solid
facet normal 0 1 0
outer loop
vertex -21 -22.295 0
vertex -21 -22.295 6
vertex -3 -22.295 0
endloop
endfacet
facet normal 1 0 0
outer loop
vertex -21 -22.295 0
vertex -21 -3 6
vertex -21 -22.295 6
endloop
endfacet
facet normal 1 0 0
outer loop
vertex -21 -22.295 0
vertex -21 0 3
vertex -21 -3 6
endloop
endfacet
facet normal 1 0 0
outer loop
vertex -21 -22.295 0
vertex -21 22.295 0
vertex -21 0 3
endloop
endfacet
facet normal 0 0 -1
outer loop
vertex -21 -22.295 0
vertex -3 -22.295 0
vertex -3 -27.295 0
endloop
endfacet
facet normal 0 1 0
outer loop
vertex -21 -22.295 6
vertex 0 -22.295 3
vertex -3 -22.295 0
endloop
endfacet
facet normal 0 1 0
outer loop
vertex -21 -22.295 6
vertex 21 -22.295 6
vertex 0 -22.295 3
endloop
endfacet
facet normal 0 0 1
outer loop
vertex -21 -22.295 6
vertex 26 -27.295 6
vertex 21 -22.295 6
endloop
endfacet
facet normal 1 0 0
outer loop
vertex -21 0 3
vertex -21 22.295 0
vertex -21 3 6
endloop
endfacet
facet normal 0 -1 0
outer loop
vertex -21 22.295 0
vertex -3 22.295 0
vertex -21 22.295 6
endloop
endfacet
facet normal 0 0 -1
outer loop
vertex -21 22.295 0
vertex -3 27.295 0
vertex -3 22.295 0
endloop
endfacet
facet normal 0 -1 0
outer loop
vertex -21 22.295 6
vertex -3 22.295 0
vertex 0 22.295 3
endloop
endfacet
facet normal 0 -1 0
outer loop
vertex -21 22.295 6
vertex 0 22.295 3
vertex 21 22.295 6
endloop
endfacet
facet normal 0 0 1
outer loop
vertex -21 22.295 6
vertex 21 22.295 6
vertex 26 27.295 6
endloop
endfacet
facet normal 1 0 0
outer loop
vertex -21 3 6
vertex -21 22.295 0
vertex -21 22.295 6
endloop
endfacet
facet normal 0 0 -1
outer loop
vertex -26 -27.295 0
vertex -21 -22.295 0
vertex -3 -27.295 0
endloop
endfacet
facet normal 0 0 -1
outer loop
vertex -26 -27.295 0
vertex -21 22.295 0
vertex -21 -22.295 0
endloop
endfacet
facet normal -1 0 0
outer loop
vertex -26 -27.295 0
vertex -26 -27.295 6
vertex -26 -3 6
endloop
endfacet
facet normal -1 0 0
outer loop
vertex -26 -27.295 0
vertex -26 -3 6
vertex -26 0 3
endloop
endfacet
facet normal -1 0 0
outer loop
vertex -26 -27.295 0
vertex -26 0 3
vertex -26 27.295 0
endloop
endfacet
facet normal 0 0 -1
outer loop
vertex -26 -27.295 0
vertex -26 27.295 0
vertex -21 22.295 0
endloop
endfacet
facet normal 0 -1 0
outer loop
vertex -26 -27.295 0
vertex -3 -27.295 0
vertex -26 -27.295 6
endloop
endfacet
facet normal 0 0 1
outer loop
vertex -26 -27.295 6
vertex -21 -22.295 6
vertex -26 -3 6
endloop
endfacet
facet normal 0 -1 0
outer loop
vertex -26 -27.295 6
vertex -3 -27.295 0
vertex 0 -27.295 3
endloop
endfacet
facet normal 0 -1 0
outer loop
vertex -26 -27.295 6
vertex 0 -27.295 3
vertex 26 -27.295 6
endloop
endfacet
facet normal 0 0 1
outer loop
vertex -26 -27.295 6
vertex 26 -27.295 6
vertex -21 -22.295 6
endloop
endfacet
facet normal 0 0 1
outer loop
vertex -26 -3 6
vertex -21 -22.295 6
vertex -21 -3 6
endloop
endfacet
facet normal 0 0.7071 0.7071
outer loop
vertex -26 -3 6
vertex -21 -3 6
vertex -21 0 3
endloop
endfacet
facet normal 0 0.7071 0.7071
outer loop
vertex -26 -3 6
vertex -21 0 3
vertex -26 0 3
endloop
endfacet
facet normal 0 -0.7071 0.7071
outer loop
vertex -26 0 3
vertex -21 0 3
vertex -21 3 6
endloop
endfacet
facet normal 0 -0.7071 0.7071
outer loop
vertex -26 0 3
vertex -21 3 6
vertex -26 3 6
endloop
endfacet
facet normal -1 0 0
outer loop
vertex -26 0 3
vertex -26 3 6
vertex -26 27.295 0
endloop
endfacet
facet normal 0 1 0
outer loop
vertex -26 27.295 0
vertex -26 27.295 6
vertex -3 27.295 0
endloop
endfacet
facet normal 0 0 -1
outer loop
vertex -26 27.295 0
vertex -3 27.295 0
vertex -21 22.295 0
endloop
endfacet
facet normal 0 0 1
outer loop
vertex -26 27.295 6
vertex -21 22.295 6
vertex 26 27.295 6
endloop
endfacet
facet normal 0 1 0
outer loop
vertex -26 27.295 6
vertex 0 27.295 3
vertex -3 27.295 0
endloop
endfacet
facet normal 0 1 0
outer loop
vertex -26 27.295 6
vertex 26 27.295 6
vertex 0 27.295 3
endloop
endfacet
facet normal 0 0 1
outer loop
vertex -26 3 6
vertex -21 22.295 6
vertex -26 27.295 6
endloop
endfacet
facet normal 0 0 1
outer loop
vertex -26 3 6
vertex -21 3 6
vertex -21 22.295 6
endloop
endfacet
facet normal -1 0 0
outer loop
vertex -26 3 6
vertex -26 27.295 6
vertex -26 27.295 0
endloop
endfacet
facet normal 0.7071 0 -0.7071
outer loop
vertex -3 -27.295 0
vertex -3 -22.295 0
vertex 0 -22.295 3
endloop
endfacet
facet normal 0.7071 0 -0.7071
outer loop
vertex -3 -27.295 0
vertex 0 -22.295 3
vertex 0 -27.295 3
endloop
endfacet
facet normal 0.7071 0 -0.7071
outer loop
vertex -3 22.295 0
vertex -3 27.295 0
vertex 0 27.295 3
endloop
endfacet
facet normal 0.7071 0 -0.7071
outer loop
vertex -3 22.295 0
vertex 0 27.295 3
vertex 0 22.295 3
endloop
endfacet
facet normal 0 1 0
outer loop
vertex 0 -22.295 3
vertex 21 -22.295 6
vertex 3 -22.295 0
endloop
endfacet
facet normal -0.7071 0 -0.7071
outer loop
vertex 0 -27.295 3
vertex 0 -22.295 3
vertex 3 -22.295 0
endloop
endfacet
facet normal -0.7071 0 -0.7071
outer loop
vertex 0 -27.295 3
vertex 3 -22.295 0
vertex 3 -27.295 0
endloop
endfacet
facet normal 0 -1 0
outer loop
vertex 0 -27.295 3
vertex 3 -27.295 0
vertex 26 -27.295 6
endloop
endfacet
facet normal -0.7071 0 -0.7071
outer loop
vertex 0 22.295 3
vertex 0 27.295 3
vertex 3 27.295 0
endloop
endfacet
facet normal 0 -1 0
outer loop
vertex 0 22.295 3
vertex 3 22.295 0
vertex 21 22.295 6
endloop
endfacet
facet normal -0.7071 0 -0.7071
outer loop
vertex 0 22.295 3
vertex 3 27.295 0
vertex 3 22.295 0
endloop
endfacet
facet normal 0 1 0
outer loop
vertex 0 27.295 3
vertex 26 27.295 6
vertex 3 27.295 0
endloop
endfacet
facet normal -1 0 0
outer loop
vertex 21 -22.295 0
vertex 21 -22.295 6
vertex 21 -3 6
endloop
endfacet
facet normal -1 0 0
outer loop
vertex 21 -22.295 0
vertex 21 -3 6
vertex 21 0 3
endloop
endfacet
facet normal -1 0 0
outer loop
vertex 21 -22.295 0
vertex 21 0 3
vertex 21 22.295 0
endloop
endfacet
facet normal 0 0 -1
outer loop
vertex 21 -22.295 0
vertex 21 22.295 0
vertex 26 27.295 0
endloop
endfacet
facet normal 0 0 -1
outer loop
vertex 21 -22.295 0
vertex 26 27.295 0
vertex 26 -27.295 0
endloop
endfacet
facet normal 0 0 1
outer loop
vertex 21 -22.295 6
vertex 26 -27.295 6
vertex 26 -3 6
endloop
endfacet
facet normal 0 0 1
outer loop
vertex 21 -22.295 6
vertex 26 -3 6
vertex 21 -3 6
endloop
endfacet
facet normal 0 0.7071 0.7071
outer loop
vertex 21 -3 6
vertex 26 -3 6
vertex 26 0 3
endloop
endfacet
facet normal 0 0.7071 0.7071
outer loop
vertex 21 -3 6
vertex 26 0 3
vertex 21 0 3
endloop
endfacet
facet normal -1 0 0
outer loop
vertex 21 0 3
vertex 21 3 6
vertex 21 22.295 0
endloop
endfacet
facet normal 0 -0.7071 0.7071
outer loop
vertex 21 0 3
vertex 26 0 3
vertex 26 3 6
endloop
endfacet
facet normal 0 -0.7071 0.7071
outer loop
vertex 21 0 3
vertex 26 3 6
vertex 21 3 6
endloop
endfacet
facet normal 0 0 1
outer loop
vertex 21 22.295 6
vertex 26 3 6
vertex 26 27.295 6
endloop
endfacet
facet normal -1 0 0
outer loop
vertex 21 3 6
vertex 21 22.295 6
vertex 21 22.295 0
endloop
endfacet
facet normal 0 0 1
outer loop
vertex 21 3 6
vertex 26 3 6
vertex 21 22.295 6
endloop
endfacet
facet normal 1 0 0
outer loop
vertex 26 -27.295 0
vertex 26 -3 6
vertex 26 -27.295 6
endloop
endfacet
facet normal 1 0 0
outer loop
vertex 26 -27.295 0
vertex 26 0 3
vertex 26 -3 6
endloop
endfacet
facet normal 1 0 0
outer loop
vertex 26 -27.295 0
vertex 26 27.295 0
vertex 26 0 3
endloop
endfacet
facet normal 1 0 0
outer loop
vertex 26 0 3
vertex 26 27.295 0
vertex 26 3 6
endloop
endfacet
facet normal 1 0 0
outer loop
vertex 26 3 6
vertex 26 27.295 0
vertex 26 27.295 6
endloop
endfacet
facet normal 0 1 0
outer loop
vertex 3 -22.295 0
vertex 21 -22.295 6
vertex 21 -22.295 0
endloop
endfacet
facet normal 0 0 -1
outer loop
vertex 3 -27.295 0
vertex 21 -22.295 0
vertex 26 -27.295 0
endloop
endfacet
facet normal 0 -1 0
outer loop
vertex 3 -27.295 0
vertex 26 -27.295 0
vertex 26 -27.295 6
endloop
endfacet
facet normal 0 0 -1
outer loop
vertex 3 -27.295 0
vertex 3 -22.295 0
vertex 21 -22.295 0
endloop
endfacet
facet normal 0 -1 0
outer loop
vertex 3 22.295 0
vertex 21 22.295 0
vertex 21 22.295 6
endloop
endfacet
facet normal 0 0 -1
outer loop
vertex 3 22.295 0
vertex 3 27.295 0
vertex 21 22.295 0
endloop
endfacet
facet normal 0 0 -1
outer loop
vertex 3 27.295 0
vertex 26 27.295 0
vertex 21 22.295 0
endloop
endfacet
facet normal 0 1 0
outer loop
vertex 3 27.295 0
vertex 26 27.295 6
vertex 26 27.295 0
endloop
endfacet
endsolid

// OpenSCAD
include <../parameters.scad>

draft=true;

//kloub stredná časť
module 888_1022(draft) {
    a=60;
    b=14;

    hole_r=(rotor_head_bearing_db/2*1/cos(rotor_head_roll_stop));

    inner_x=rotor_head_kardan_inner_x;
    inner_y=rotor_head_kardan_inner_y;
    plate_thickness=0;
    brit_width=rotor_head_brit_width;
    wall_height=6;
    kardan_clearance=rotor_head_cardan_clearance;
    
    outer_x = inner_x + 2*brit_width;
    outer_y = inner_y + 2*brit_width;
    outer_height = wall_height + plate_thickness ;
    
    difference(){     
        translate ([0,0,outer_height/2]) {
            cube([outer_x,outer_y,outer_height],center = true);
            }
        translate([0,0,wall_height + plate_thickness-0.01]){
            cube([inner_x,inner_y,wall_height*2],center = true);
            }
        hull() {
            translate([-(inner_x/2 - hole_r),0,-outer_height]) {
                cylinder (h=outer_height*4, r=hole_r,$fn = 100);
                }
            translate([inner_x/2 - hole_r,0,-outer_height]) {
                cylinder (h=outer_height*4, r=hole_r,$fn = 100);
                }
            }
        translate([0,0,(a/ 2 * sqrt(2) ) + plate_thickness+wall_height/2]) {
                rotate ([45,0,0]) {
                    cube([2*inner_x + 2 * brit_width, a,a],center=true);
                    }
                }
        translate([0,-b/2-inner_y/2+kardan_clearance,-(b * sqrt(2) / 2) + plate_thickness+wall_height/2]){
            rotate ([0,45,0]){
                cube(b,center=true);
                }
            }
        translate([0,b/2+inner_y/2-kardan_clearance,-(b * sqrt(2) / 2) + plate_thickness+wall_height/2]){
            rotate ([0,45,0]){
                cube(b,center=true);
                }
            }           
        }
    }

888_1022(draft);
